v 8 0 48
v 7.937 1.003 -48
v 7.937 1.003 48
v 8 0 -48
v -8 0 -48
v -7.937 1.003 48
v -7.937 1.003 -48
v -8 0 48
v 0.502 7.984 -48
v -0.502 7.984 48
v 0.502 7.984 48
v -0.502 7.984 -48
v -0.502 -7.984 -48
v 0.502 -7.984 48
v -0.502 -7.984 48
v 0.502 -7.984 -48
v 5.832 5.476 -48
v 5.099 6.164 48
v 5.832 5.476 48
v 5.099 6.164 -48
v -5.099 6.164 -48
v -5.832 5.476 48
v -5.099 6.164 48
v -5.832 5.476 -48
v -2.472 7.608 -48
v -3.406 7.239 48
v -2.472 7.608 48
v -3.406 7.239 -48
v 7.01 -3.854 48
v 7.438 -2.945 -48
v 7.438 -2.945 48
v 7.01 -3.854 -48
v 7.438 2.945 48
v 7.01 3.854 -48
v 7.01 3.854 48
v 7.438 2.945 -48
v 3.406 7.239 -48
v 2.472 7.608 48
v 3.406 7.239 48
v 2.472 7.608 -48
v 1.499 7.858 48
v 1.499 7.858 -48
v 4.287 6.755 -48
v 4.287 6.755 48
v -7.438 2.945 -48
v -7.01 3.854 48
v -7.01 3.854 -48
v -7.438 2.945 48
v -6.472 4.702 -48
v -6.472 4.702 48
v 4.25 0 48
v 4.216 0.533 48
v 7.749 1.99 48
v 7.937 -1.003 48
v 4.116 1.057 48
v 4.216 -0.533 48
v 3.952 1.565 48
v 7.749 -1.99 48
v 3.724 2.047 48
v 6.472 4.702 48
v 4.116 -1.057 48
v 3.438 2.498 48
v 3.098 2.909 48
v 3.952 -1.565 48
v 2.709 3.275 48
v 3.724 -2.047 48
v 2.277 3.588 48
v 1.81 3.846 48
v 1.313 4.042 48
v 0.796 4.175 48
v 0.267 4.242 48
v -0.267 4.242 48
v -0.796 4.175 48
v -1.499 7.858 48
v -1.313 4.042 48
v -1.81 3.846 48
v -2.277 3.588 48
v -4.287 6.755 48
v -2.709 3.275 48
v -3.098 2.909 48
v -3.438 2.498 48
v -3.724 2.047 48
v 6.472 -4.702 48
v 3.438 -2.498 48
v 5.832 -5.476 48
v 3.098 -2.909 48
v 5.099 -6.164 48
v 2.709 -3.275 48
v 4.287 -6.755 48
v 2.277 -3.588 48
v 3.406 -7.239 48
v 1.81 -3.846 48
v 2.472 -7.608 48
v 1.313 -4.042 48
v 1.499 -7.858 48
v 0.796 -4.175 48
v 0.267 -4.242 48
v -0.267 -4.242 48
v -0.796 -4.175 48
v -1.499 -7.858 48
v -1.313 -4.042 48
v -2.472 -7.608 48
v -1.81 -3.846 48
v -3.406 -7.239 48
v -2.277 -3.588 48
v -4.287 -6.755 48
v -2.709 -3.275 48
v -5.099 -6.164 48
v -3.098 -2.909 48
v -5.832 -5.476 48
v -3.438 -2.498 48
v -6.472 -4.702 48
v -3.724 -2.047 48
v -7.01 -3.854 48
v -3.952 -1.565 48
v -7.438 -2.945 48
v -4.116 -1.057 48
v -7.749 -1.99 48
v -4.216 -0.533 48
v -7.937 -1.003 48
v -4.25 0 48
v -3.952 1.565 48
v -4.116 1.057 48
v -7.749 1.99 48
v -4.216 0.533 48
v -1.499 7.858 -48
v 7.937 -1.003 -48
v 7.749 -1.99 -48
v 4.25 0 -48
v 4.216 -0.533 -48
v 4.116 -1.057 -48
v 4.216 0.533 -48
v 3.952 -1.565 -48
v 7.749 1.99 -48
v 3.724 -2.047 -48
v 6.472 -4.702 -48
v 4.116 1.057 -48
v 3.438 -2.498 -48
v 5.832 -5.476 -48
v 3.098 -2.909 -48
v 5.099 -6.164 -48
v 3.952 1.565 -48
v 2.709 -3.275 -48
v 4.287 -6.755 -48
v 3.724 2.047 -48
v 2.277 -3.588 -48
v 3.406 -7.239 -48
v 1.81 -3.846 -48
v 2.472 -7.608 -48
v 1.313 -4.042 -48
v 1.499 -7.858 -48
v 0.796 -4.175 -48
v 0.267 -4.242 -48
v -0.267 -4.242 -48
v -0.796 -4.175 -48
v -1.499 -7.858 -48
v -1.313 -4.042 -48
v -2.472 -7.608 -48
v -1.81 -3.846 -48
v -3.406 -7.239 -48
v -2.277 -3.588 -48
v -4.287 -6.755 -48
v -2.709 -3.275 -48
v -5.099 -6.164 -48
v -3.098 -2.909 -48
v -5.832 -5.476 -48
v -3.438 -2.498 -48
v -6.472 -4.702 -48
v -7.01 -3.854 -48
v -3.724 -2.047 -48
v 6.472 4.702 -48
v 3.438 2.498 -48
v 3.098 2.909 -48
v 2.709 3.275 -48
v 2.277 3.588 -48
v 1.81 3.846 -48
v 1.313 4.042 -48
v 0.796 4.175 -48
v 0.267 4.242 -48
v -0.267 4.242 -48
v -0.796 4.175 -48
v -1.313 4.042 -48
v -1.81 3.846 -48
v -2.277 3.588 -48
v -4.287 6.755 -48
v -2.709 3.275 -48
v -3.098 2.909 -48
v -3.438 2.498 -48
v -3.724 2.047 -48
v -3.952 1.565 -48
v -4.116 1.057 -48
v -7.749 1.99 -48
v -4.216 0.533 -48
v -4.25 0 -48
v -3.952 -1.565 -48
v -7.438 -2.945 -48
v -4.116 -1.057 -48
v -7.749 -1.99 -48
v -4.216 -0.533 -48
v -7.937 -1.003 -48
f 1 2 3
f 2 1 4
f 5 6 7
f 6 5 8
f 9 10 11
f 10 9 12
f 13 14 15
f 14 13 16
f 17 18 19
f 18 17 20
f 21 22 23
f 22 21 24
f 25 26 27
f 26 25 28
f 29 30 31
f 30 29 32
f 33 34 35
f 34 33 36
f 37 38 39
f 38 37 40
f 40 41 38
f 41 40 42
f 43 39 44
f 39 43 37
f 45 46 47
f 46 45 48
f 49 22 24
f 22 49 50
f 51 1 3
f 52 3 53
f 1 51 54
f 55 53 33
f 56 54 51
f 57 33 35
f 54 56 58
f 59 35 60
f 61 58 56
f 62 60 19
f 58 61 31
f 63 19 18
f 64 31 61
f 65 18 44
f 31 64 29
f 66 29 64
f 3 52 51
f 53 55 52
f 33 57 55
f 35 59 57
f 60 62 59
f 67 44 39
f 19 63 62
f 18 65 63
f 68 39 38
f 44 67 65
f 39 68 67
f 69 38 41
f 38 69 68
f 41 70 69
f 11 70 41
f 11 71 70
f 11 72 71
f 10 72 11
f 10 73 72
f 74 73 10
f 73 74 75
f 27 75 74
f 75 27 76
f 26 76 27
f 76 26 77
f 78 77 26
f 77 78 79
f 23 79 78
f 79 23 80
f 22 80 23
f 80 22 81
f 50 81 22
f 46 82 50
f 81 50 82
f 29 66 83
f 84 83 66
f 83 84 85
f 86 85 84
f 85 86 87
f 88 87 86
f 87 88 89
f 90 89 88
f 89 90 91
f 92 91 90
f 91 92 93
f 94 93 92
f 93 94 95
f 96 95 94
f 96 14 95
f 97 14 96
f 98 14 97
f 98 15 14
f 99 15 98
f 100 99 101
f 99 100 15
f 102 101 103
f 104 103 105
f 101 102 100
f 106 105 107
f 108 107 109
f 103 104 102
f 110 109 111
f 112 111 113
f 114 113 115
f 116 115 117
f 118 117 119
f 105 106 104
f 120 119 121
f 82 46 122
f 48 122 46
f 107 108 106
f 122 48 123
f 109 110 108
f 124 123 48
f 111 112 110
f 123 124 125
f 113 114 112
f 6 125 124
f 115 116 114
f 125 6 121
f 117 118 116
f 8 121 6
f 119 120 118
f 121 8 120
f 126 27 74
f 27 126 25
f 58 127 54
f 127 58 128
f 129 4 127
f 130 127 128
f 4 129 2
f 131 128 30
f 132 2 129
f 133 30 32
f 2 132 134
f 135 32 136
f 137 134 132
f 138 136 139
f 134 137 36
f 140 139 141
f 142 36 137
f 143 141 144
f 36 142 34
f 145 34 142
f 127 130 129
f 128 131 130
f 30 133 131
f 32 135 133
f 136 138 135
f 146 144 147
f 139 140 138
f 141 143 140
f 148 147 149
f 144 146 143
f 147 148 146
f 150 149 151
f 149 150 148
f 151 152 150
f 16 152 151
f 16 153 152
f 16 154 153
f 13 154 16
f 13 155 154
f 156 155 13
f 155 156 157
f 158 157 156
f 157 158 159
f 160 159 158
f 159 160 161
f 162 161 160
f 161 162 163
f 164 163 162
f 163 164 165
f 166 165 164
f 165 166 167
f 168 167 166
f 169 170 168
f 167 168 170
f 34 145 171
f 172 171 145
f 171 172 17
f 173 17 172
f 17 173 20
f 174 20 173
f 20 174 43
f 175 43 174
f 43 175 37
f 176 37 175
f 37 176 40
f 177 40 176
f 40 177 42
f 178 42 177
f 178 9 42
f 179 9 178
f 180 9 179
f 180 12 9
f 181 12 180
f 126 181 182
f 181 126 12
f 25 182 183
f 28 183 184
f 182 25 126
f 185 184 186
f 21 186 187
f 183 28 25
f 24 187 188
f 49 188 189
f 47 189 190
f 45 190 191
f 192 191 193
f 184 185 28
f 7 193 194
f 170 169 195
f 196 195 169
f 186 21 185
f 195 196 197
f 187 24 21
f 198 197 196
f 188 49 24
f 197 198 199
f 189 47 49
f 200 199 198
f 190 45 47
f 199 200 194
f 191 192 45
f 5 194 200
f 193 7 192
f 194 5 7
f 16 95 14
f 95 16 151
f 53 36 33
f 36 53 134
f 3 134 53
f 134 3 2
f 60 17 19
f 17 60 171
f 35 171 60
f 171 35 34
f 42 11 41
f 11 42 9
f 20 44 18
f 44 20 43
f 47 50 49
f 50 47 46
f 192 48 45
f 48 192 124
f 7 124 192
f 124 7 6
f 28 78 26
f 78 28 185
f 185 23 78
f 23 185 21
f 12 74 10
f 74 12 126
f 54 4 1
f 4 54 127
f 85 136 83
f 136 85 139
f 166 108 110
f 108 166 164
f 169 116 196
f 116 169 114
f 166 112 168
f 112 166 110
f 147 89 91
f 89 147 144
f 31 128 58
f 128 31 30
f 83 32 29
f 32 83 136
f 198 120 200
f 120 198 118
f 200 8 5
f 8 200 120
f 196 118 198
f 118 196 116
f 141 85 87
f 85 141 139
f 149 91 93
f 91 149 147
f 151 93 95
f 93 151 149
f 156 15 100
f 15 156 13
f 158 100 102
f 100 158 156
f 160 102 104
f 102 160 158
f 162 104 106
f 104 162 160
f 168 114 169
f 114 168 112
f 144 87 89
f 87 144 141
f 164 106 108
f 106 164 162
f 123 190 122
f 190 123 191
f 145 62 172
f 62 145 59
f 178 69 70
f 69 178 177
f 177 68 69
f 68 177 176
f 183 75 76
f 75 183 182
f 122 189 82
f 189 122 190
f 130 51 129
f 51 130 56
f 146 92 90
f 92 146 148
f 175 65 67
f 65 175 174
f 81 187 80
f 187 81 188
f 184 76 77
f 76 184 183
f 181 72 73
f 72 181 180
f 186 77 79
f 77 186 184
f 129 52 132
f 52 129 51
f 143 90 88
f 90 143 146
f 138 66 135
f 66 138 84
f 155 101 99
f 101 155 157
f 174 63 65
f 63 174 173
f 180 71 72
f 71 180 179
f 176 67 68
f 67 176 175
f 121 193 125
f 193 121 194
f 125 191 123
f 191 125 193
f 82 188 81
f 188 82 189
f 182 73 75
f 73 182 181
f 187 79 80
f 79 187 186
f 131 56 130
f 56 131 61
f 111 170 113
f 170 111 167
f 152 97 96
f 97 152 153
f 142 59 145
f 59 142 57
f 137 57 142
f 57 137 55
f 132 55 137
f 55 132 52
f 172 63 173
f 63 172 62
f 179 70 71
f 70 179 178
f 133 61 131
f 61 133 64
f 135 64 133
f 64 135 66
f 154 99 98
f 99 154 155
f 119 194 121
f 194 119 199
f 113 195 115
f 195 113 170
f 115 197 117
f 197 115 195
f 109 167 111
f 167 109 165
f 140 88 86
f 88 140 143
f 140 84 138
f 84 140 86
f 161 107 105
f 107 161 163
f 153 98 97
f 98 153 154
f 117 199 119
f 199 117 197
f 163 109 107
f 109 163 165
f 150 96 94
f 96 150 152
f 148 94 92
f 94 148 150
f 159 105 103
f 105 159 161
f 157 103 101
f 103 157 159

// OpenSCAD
$fn = 50;


difference() {
	union() {
		translate(v = [0, 0, -48.0000000000]) {
			cylinder(h = 96, r = 8.0000000000);
		}
	}
	union() {
		translate(v = [0, 0, -100.0000000000]) {
			cylinder(h = 200, r = 4.2500000000);
		}
	}
}
